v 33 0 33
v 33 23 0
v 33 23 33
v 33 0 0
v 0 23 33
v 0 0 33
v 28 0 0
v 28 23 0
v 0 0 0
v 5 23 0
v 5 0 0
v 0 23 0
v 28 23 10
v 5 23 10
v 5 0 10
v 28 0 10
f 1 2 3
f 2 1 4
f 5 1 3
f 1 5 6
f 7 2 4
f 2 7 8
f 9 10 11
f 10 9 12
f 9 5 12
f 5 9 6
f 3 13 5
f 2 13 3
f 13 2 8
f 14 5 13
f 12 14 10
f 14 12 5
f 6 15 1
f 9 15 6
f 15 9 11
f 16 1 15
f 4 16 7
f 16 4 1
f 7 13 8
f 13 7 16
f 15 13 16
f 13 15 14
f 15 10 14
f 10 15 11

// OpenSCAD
base_height = 23; // Height between base and table
base_width = 33; // Width of the base cube, this includes the margin/feet around the plank for stabilization
base_depth = 23; // With of item to have a strong cube shape
cutout_height = 10; // How far the stabilizers to down
cutout_width = 23; // With of plank to put base against

difference() {
  cube([base_width, base_depth, base_height+cutout_height]);
  translate([(base_width - cutout_width)/2,-1,-1]) cube([cutout_width, base_depth+2, cutout_height+1]);
}
